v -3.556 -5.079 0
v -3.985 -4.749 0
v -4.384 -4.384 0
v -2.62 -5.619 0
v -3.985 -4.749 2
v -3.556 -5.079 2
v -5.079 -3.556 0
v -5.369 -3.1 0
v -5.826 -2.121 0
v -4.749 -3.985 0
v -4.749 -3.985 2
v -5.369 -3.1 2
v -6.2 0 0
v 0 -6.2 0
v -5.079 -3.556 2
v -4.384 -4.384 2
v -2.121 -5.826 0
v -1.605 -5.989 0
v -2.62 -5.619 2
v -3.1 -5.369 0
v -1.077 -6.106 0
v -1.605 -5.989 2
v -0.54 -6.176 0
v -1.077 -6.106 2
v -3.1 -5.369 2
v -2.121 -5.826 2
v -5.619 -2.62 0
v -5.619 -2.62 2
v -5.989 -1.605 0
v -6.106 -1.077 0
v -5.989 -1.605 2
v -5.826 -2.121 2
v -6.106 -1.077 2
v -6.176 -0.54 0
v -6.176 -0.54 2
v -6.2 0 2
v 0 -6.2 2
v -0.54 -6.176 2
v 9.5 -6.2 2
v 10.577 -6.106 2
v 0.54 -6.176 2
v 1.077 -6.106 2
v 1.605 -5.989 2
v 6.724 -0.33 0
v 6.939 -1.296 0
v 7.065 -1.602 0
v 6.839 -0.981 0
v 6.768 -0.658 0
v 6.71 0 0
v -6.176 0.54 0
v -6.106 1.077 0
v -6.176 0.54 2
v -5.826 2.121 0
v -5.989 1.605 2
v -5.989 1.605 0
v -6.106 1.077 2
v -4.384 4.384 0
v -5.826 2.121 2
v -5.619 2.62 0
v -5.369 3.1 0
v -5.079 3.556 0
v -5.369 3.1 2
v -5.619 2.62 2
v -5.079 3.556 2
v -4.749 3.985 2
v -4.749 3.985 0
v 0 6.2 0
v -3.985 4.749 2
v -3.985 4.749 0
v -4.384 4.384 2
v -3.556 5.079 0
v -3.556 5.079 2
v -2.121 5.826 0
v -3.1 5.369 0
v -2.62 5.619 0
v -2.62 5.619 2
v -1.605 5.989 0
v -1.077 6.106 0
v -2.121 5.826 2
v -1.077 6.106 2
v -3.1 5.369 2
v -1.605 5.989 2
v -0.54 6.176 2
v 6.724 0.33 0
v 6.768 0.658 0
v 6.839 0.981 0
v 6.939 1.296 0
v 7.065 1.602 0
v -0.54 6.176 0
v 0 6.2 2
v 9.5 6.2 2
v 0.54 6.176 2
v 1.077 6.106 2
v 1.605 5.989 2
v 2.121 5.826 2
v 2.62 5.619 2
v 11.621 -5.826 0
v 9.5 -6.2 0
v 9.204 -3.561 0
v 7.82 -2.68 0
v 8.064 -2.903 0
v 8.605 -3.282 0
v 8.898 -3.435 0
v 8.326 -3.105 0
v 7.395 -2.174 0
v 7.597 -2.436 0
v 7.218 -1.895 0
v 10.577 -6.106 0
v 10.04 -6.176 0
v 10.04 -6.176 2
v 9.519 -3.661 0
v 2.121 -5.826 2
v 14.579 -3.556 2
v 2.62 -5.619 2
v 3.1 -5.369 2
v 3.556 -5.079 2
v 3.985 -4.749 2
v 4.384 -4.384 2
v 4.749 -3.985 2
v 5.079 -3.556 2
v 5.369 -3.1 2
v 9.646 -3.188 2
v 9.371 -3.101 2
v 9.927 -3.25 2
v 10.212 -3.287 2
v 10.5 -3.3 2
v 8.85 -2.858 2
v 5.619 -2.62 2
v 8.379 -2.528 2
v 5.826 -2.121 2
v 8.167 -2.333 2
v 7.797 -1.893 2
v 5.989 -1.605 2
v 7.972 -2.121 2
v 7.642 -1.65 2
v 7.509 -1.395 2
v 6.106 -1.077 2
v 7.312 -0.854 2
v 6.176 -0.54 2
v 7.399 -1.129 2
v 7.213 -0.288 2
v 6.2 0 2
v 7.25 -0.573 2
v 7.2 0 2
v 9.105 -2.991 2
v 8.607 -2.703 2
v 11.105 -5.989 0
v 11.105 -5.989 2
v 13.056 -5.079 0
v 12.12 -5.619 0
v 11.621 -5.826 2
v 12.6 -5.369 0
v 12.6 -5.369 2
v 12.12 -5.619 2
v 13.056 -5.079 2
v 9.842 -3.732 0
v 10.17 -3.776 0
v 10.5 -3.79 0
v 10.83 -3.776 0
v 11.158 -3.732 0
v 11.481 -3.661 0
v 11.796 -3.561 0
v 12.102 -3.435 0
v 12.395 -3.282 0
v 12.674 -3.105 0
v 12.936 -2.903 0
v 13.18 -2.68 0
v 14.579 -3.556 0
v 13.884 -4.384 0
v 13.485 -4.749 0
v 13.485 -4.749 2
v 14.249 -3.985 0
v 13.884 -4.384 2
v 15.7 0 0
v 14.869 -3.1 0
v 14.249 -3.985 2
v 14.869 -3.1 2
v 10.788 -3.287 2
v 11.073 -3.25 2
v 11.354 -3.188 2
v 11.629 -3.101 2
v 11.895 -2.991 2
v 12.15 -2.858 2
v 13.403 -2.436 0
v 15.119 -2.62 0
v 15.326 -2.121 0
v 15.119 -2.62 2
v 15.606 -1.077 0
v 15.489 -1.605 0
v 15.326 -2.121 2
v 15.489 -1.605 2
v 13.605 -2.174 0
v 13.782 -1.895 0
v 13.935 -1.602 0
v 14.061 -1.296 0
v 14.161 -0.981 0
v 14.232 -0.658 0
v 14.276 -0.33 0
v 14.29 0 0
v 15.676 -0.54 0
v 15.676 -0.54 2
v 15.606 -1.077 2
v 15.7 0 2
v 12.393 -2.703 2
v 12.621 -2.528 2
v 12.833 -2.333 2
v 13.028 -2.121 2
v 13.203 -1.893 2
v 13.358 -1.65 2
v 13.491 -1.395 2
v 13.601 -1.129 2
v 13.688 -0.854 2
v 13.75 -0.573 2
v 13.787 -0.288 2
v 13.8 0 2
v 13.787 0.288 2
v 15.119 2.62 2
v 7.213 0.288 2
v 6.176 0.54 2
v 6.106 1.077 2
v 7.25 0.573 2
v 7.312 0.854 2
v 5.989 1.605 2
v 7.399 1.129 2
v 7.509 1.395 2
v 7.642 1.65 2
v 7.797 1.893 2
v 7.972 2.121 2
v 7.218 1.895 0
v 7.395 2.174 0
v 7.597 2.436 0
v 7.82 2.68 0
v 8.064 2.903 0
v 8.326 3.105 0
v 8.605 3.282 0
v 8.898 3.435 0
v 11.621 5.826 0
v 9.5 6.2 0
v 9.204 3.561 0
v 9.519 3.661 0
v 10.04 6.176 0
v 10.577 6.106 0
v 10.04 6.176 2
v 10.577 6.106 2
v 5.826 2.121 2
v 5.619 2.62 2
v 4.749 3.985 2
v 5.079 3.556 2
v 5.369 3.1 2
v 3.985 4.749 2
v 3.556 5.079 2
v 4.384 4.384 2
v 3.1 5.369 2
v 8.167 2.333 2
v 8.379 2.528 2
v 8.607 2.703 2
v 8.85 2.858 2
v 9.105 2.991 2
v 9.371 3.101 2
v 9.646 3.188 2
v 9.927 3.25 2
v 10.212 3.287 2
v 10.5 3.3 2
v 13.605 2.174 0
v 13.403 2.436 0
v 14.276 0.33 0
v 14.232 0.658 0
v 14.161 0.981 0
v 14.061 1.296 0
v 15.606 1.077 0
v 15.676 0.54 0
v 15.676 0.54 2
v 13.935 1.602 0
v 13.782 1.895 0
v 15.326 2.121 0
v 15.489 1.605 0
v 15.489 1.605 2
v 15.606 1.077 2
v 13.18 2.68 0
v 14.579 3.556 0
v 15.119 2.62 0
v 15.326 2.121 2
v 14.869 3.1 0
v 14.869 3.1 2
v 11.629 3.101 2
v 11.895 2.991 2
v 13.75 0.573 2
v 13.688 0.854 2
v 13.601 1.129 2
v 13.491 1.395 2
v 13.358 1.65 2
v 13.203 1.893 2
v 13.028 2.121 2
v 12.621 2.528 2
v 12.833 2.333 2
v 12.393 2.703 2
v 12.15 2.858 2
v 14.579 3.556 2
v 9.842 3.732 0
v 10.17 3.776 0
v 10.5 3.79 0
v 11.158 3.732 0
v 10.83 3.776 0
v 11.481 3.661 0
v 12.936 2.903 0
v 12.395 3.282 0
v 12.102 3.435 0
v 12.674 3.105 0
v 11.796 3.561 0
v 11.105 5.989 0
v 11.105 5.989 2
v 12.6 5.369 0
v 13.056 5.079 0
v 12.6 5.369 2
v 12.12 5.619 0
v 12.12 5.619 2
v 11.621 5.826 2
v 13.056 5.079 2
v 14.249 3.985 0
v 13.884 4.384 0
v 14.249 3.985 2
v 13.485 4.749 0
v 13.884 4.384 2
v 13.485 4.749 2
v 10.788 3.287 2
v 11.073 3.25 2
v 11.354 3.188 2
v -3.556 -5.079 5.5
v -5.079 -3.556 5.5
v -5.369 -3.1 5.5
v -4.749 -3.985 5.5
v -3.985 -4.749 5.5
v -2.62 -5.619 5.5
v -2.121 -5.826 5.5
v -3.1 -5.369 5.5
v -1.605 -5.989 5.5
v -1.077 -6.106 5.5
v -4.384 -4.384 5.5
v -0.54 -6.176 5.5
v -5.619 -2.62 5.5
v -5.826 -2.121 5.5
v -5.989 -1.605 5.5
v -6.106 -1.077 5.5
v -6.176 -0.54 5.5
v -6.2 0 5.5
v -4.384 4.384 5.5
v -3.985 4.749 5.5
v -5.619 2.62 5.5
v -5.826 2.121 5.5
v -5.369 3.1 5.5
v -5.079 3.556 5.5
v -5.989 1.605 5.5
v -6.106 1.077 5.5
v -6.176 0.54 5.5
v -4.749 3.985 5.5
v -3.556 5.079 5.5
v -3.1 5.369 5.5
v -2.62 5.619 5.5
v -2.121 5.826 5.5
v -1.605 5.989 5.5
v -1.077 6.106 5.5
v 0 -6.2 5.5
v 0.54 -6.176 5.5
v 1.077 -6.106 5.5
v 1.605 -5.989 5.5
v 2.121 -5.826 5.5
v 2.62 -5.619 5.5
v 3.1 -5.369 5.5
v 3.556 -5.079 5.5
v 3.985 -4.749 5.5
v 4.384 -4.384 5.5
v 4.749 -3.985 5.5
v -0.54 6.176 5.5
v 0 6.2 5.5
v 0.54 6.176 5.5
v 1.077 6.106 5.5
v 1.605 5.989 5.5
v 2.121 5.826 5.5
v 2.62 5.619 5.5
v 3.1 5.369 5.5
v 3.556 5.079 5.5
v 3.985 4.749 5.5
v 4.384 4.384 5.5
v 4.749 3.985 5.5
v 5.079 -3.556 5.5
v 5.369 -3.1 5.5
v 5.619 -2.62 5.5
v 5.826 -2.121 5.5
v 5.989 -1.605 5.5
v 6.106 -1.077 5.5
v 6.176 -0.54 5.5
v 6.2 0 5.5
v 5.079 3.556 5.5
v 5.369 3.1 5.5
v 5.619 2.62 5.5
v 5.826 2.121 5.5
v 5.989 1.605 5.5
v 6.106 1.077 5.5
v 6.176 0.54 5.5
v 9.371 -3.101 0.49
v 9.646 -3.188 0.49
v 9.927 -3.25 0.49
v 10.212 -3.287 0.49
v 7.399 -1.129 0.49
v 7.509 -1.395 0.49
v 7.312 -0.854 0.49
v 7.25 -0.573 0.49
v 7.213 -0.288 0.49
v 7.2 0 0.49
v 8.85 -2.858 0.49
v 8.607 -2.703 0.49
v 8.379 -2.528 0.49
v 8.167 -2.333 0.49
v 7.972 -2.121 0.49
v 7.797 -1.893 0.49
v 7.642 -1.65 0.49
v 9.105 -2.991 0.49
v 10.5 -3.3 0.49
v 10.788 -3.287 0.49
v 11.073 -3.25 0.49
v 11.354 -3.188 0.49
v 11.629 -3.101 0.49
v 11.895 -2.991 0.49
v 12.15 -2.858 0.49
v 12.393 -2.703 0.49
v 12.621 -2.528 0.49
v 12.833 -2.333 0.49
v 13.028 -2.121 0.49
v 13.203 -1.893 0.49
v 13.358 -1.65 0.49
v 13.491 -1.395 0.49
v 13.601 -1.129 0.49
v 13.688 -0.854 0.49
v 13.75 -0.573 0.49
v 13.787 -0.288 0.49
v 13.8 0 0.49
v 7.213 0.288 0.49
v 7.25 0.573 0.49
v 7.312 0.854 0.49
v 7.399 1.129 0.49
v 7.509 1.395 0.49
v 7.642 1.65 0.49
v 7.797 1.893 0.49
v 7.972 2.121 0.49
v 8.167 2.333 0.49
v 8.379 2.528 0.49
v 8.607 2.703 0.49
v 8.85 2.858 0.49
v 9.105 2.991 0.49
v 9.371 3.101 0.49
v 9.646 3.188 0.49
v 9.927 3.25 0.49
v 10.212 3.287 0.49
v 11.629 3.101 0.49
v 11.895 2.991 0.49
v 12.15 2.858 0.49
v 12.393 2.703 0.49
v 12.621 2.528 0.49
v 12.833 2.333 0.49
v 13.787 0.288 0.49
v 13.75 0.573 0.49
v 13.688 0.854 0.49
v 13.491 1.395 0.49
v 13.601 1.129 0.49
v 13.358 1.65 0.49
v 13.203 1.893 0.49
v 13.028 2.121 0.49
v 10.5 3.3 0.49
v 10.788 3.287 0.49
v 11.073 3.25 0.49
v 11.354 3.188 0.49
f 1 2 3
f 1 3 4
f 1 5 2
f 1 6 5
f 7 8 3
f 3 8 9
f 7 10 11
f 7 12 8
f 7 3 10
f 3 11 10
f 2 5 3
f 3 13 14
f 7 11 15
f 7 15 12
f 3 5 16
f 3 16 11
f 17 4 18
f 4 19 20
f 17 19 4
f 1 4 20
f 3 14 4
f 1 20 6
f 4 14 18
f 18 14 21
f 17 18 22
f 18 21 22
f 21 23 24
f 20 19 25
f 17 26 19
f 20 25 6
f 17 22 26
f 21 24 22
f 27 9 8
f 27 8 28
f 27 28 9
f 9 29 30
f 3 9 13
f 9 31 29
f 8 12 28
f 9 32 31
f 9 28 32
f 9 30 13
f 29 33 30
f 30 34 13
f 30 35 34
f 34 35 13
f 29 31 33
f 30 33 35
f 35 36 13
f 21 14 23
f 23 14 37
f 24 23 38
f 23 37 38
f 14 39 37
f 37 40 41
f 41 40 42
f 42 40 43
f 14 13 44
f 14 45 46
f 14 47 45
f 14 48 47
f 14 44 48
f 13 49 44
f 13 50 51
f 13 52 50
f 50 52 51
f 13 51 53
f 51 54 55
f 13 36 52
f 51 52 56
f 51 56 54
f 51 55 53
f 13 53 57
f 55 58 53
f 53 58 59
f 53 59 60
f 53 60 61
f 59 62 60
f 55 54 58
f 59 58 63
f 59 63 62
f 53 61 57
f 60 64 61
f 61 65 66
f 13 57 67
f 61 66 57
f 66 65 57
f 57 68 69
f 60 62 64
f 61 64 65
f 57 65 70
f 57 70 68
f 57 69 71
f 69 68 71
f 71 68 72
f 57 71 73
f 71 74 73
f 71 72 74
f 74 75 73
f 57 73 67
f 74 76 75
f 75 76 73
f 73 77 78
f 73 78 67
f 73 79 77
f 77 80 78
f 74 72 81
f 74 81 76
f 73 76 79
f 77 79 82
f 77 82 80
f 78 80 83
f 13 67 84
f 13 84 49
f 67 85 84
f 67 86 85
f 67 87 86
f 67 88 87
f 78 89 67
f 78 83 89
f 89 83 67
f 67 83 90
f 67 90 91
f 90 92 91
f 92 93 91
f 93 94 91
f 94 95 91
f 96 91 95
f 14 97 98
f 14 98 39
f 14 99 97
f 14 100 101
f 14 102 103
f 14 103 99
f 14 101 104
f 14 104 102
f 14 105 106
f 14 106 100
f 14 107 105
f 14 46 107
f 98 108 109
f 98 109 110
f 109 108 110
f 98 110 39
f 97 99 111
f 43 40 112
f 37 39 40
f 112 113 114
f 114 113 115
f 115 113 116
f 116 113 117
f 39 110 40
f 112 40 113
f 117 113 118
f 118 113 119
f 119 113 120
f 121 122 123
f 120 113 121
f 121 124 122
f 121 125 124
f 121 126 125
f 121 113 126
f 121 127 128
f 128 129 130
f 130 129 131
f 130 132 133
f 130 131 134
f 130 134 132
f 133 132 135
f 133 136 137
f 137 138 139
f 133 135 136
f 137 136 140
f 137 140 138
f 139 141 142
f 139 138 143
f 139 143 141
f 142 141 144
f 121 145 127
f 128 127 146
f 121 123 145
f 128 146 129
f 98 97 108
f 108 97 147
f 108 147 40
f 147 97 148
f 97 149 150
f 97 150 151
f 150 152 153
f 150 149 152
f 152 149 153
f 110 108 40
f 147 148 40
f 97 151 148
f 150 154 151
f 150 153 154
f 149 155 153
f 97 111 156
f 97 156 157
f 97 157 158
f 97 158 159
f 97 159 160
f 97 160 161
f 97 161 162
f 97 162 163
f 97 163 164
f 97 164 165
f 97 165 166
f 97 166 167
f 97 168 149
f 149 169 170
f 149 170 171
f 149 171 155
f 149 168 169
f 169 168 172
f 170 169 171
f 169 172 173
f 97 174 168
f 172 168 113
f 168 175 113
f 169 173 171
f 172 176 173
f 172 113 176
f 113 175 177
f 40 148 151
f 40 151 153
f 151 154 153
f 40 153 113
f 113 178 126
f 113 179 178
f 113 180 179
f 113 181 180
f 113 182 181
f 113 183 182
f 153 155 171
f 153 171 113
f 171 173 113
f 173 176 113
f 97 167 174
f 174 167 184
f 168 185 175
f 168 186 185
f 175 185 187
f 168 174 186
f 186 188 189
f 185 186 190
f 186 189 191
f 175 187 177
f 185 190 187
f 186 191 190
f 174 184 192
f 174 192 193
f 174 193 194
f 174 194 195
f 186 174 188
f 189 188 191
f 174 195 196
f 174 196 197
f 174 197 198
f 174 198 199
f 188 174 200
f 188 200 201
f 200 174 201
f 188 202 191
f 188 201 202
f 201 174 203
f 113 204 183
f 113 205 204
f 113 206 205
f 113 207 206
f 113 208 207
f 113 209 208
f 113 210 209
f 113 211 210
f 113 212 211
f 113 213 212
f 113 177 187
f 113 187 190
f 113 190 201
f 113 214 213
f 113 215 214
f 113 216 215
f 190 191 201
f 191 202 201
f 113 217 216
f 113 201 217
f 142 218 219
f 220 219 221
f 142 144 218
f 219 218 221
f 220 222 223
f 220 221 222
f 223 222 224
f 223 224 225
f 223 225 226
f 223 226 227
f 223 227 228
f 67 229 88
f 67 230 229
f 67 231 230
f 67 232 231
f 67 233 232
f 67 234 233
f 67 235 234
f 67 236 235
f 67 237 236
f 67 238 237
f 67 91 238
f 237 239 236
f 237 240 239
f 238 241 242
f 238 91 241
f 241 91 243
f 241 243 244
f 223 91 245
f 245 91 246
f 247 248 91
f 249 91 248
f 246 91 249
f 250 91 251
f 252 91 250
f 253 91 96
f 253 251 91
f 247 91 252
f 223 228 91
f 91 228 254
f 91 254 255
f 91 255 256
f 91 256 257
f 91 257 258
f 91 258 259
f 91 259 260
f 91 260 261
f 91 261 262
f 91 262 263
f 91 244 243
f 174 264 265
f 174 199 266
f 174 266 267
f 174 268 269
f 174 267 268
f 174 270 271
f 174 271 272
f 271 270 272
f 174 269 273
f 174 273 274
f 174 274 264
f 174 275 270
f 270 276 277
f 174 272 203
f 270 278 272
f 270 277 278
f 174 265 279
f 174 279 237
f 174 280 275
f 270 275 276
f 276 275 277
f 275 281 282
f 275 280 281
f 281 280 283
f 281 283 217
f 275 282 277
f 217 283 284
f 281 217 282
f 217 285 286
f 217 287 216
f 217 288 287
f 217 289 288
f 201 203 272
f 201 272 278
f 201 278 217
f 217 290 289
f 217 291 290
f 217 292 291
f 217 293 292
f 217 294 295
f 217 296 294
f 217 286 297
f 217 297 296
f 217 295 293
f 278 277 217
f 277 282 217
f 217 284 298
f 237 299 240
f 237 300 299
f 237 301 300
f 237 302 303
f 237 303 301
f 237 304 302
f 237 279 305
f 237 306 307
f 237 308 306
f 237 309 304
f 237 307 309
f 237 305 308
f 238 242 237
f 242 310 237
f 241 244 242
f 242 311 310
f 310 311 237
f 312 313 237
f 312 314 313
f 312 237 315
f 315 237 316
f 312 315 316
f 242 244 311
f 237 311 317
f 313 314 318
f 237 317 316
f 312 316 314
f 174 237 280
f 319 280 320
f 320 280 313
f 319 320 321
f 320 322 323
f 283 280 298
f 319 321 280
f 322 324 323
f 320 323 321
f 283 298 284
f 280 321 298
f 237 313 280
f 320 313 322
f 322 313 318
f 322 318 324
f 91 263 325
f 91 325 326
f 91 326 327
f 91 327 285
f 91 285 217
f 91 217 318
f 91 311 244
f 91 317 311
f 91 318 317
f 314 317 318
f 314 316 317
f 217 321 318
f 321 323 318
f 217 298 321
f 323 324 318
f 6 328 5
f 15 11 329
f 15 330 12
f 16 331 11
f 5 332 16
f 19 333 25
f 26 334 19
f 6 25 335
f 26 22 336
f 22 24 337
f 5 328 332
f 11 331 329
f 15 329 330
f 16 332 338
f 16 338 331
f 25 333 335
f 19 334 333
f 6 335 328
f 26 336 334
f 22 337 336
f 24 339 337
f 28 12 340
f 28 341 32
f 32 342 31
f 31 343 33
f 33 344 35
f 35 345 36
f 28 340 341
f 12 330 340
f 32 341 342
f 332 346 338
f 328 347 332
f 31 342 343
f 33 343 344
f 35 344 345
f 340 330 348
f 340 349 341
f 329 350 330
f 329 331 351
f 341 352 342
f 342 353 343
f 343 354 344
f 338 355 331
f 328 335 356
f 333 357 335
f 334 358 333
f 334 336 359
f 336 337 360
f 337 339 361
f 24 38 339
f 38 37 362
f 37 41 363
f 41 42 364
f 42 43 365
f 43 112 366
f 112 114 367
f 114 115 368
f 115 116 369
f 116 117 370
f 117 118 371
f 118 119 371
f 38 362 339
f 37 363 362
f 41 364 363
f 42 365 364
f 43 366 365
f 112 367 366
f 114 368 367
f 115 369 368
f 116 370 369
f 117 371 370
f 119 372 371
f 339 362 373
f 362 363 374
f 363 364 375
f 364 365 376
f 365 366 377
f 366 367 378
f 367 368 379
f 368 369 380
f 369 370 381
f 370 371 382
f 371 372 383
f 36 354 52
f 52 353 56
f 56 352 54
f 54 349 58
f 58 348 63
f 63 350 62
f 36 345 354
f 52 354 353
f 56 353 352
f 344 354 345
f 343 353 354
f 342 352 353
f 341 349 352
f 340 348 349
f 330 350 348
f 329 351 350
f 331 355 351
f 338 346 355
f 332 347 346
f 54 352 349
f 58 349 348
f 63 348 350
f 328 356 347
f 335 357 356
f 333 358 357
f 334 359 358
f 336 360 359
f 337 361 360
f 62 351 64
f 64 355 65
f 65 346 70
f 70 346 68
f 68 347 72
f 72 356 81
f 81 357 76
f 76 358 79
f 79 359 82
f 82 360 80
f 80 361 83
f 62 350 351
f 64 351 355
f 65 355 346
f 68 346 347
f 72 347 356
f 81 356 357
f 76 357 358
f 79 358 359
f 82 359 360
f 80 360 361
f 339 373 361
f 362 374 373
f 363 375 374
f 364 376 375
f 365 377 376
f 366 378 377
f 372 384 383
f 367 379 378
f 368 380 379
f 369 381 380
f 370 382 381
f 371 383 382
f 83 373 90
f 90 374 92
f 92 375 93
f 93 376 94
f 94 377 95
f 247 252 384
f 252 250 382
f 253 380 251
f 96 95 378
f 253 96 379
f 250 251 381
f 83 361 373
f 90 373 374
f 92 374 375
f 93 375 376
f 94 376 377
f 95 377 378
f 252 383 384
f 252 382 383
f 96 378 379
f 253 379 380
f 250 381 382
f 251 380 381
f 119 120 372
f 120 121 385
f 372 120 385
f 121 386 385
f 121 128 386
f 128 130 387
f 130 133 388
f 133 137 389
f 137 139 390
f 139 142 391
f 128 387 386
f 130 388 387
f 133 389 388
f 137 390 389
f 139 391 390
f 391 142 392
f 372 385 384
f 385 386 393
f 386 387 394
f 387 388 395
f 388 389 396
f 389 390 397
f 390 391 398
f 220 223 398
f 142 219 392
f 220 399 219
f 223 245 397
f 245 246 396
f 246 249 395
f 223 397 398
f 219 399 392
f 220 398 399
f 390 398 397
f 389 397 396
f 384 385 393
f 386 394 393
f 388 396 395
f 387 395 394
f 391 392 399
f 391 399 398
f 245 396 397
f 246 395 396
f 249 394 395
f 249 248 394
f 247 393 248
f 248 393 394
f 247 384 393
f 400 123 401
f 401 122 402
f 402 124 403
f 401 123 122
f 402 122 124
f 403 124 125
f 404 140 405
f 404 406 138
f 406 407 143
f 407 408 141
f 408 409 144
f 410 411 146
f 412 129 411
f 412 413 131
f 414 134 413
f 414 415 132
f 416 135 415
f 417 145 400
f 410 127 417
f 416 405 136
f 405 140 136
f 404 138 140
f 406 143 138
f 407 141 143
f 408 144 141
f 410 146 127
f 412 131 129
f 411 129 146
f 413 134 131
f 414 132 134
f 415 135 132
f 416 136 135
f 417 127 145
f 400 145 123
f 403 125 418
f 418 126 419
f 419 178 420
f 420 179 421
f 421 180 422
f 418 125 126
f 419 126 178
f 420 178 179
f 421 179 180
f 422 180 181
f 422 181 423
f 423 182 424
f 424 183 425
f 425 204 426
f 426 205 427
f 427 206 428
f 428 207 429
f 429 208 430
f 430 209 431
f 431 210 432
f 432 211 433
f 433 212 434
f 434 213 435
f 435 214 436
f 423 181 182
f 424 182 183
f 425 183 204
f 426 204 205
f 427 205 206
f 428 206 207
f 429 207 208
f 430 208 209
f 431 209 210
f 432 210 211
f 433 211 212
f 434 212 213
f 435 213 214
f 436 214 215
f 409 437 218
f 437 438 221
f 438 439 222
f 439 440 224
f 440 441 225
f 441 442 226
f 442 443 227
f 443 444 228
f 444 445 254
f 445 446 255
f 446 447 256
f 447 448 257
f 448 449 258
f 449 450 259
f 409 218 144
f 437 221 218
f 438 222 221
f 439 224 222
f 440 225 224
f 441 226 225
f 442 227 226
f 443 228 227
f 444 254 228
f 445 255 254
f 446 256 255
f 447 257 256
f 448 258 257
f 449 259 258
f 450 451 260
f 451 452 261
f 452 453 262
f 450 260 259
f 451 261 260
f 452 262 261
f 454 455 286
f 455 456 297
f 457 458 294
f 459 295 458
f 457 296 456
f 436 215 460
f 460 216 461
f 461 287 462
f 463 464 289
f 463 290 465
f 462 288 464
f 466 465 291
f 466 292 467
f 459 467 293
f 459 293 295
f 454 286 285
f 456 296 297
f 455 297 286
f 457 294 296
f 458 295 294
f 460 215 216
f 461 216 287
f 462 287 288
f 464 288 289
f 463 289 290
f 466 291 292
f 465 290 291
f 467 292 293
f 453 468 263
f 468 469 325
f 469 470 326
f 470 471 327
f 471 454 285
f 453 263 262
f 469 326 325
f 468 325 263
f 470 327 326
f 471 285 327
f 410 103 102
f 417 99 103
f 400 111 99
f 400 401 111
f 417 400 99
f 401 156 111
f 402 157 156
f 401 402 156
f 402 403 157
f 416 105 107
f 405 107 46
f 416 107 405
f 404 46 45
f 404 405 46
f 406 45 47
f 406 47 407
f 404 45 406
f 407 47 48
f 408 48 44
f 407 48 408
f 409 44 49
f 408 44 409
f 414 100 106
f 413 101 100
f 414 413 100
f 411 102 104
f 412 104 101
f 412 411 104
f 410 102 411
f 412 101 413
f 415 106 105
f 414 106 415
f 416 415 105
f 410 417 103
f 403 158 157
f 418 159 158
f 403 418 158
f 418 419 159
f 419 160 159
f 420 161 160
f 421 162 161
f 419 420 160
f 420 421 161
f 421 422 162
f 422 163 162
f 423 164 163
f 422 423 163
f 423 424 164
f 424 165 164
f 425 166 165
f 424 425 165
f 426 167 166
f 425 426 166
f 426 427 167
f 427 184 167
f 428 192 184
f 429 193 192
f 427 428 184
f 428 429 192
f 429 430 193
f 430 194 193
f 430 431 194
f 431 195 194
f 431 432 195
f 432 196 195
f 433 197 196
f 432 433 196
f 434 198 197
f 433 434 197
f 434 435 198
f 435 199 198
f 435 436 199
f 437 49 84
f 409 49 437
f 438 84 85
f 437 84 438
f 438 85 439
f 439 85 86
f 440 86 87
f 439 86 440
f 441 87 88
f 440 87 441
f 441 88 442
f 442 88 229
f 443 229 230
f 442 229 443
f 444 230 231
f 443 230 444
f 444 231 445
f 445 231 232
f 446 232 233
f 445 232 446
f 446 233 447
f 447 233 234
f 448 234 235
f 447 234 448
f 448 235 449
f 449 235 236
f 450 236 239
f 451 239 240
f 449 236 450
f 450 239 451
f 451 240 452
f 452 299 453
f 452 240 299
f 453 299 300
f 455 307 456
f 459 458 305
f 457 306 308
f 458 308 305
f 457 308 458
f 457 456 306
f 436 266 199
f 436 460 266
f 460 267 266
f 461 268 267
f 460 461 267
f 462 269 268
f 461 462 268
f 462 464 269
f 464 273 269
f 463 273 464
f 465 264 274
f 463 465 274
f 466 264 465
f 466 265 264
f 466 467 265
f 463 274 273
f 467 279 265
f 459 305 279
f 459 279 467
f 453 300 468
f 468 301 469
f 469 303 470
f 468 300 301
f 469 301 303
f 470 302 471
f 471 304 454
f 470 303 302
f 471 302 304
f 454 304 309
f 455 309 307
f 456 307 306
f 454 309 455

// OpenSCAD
// =====================================================================
//  REFUERZO DE BOCALLAVE  (mal llamado "arandela": no es redonda)
//
//  QUE PROBLEMA RESUELVE
//  La cabeza del tornillo (11 mm) apoya sobre el labio de la bocallave
//  a ambos lados de una ranura de 7,5 mm. Eso son 19 mm2 de apoyo
//  real, repartidos en dos medias lunas de 1,75 mm. Poco.
//
//  POR QUE NO VALE UNA ARANDELA COMPRADA
//  El alojamiento de la cabeza mide 13 mm de ancho y el tornillo queda
//  a solo 5,5 mm del fondo. Cualquier arandela redonda que quepa tiene
//  que medir 11 mm o menos, o sea lo mismo que la cabeza: no gana
//  NADA. Una DIN 125 (12,5) o una carrocera (18) simplemente no entran.
//  Por eso hay que imprimirla: la unica forma de ganar superficie es
//  crecer a lo LARGO de la ranura, y eso no lo vende nadie.
//
//  QUE HACE ESTA PIEZA
//    1. Placa oblonga de 12,4 mm de ancho que se mete en el alojamiento
//       y apoya bajo el labio en toda la longitud de la ranura:
//       56 mm2 en vez de 19. Y plana, sin el efecto cuna que hace una
//       cabeza abombada al meterse en la ranura.
//    2. Un TOPE cilindrico que rellena el circulo de entrada. Sin el,
//       nada impide que el rail se deslice hacia atras y se descuelgue
//       de los tornillos: es el otro fallo probable, y sale gratis.
//
//  COMO SE MONTA (con el rail YA COLGADO y deslizado)
//    Uno a uno, los otros 7 tornillos aguantan mientras tanto:
//      1. Saca el tornillo.
//      2. Metelo por el agujero de la placa.
//      3. Mete el conjunto en el alojamiento DESDE ABAJO, con el tope
//         hacia el circulo de entrada. Se coloca solo.
//      4. Aprieta dejando 5,5 mm de vastago fuera del tablero
//         (3,5 del labio + 2 de la placa) en vez de los 3,5 de antes.
//
//  Unidades: milimetros. No necesita BOSL2.
// =====================================================================

/* --------- MEDIDAS COPIADAS DEL RAIL (bajomesa_homelab.scad) -------- */
d_cabeza    = 11;    hol_cabeza  = 2.0;
d_vastago   = 6;     hol_vastago = 1.5;
desliz      = 16;    RH          = 15;
saliente_tornillo = 3.5;

/* --------- DERIVADAS DEL ALOJAMIENTO -------------------------------- */
dh   = d_cabeza  + hol_cabeza;        // 13.0  ancho del alojamiento
sw   = d_vastago + hol_vastago;       //  7.5  ancho de la ranura del labio
prof = RH - saliente_tornillo;        // 11.5  profundidad del alojamiento
x_tornillo = desliz - d_cabeza/2;     // 10.5  donde topa la cabeza al deslizar

/* --------- LA PIEZA -------------------------------------------------- */
hol_pieza = 0.3;                      // holgura contra las paredes
ancho     = dh - 2*hol_pieza;         // 12.4
x_atras   = -dh/2 + hol_pieza;        // -6.2
x_alante  = desliz - hol_pieza;       // 15.7
espesor   = 2;                        // placa
d_paso    = d_vastago + 0.6;          //  6.6  agujero del vastago
tope_h    = saliente_tornillo;        //  3.5  el tope llega hasta el tablero
chaflan   = 0.5;

$fn = 72;

module refuerzo() {
    difference() {
        union() {
            hull() {
                translate([x_atras  + ancho/2, 0, 0]) cylinder(h = espesor, d = ancho);
                translate([x_alante - ancho/2, 0, 0]) cylinder(h = espesor, d = ancho);
            }
            // tope antideslizamiento, rellena el circulo de entrada
            translate([0, 0, espesor]) cylinder(h = tope_h, d = ancho);
        }
        translate([x_tornillo, 0, -1]) cylinder(h = espesor + 2, d = d_paso);
        // chaflan bajo el agujero: la cabeza asienta plana aunque tenga radio
        translate([x_tornillo, 0, -0.01])
            cylinder(h = chaflan, d1 = d_paso + 2*chaflan, d2 = d_paso);
    }
}

refuerzo();

/* --------- COMPROBACIONES CONTRA EL ALOJAMIENTO REAL ----------------- */
echo(str("ancho ", ancho, " en alojamiento de ", dh,
         "  -> ", ancho < dh ? "CABE" : "*** NO CABE ***"));
echo(str("largo ", x_alante - x_atras, " en alojamiento de ", desliz + dh/2,
         "  -> ", x_alante - x_atras < desliz + dh/2 ? "CABE" : "*** NO CABE ***"));
echo(str("altura total ", espesor + tope_h, " en profundidad de ", prof,
         "  -> queda ", prof - espesor, " mm para la cabeza"));
echo(str("solape bajo el labio: ", (ancho - sw)/2, " mm por lado (antes ",
         (d_cabeza - sw)/2, ")"));
echo(str("material por delante del agujero: ", x_alante - x_tornillo - d_paso/2, " mm"));
echo(str("SALIENTE DE TORNILLO NUEVO: ", saliente_tornillo + espesor, " mm"));
